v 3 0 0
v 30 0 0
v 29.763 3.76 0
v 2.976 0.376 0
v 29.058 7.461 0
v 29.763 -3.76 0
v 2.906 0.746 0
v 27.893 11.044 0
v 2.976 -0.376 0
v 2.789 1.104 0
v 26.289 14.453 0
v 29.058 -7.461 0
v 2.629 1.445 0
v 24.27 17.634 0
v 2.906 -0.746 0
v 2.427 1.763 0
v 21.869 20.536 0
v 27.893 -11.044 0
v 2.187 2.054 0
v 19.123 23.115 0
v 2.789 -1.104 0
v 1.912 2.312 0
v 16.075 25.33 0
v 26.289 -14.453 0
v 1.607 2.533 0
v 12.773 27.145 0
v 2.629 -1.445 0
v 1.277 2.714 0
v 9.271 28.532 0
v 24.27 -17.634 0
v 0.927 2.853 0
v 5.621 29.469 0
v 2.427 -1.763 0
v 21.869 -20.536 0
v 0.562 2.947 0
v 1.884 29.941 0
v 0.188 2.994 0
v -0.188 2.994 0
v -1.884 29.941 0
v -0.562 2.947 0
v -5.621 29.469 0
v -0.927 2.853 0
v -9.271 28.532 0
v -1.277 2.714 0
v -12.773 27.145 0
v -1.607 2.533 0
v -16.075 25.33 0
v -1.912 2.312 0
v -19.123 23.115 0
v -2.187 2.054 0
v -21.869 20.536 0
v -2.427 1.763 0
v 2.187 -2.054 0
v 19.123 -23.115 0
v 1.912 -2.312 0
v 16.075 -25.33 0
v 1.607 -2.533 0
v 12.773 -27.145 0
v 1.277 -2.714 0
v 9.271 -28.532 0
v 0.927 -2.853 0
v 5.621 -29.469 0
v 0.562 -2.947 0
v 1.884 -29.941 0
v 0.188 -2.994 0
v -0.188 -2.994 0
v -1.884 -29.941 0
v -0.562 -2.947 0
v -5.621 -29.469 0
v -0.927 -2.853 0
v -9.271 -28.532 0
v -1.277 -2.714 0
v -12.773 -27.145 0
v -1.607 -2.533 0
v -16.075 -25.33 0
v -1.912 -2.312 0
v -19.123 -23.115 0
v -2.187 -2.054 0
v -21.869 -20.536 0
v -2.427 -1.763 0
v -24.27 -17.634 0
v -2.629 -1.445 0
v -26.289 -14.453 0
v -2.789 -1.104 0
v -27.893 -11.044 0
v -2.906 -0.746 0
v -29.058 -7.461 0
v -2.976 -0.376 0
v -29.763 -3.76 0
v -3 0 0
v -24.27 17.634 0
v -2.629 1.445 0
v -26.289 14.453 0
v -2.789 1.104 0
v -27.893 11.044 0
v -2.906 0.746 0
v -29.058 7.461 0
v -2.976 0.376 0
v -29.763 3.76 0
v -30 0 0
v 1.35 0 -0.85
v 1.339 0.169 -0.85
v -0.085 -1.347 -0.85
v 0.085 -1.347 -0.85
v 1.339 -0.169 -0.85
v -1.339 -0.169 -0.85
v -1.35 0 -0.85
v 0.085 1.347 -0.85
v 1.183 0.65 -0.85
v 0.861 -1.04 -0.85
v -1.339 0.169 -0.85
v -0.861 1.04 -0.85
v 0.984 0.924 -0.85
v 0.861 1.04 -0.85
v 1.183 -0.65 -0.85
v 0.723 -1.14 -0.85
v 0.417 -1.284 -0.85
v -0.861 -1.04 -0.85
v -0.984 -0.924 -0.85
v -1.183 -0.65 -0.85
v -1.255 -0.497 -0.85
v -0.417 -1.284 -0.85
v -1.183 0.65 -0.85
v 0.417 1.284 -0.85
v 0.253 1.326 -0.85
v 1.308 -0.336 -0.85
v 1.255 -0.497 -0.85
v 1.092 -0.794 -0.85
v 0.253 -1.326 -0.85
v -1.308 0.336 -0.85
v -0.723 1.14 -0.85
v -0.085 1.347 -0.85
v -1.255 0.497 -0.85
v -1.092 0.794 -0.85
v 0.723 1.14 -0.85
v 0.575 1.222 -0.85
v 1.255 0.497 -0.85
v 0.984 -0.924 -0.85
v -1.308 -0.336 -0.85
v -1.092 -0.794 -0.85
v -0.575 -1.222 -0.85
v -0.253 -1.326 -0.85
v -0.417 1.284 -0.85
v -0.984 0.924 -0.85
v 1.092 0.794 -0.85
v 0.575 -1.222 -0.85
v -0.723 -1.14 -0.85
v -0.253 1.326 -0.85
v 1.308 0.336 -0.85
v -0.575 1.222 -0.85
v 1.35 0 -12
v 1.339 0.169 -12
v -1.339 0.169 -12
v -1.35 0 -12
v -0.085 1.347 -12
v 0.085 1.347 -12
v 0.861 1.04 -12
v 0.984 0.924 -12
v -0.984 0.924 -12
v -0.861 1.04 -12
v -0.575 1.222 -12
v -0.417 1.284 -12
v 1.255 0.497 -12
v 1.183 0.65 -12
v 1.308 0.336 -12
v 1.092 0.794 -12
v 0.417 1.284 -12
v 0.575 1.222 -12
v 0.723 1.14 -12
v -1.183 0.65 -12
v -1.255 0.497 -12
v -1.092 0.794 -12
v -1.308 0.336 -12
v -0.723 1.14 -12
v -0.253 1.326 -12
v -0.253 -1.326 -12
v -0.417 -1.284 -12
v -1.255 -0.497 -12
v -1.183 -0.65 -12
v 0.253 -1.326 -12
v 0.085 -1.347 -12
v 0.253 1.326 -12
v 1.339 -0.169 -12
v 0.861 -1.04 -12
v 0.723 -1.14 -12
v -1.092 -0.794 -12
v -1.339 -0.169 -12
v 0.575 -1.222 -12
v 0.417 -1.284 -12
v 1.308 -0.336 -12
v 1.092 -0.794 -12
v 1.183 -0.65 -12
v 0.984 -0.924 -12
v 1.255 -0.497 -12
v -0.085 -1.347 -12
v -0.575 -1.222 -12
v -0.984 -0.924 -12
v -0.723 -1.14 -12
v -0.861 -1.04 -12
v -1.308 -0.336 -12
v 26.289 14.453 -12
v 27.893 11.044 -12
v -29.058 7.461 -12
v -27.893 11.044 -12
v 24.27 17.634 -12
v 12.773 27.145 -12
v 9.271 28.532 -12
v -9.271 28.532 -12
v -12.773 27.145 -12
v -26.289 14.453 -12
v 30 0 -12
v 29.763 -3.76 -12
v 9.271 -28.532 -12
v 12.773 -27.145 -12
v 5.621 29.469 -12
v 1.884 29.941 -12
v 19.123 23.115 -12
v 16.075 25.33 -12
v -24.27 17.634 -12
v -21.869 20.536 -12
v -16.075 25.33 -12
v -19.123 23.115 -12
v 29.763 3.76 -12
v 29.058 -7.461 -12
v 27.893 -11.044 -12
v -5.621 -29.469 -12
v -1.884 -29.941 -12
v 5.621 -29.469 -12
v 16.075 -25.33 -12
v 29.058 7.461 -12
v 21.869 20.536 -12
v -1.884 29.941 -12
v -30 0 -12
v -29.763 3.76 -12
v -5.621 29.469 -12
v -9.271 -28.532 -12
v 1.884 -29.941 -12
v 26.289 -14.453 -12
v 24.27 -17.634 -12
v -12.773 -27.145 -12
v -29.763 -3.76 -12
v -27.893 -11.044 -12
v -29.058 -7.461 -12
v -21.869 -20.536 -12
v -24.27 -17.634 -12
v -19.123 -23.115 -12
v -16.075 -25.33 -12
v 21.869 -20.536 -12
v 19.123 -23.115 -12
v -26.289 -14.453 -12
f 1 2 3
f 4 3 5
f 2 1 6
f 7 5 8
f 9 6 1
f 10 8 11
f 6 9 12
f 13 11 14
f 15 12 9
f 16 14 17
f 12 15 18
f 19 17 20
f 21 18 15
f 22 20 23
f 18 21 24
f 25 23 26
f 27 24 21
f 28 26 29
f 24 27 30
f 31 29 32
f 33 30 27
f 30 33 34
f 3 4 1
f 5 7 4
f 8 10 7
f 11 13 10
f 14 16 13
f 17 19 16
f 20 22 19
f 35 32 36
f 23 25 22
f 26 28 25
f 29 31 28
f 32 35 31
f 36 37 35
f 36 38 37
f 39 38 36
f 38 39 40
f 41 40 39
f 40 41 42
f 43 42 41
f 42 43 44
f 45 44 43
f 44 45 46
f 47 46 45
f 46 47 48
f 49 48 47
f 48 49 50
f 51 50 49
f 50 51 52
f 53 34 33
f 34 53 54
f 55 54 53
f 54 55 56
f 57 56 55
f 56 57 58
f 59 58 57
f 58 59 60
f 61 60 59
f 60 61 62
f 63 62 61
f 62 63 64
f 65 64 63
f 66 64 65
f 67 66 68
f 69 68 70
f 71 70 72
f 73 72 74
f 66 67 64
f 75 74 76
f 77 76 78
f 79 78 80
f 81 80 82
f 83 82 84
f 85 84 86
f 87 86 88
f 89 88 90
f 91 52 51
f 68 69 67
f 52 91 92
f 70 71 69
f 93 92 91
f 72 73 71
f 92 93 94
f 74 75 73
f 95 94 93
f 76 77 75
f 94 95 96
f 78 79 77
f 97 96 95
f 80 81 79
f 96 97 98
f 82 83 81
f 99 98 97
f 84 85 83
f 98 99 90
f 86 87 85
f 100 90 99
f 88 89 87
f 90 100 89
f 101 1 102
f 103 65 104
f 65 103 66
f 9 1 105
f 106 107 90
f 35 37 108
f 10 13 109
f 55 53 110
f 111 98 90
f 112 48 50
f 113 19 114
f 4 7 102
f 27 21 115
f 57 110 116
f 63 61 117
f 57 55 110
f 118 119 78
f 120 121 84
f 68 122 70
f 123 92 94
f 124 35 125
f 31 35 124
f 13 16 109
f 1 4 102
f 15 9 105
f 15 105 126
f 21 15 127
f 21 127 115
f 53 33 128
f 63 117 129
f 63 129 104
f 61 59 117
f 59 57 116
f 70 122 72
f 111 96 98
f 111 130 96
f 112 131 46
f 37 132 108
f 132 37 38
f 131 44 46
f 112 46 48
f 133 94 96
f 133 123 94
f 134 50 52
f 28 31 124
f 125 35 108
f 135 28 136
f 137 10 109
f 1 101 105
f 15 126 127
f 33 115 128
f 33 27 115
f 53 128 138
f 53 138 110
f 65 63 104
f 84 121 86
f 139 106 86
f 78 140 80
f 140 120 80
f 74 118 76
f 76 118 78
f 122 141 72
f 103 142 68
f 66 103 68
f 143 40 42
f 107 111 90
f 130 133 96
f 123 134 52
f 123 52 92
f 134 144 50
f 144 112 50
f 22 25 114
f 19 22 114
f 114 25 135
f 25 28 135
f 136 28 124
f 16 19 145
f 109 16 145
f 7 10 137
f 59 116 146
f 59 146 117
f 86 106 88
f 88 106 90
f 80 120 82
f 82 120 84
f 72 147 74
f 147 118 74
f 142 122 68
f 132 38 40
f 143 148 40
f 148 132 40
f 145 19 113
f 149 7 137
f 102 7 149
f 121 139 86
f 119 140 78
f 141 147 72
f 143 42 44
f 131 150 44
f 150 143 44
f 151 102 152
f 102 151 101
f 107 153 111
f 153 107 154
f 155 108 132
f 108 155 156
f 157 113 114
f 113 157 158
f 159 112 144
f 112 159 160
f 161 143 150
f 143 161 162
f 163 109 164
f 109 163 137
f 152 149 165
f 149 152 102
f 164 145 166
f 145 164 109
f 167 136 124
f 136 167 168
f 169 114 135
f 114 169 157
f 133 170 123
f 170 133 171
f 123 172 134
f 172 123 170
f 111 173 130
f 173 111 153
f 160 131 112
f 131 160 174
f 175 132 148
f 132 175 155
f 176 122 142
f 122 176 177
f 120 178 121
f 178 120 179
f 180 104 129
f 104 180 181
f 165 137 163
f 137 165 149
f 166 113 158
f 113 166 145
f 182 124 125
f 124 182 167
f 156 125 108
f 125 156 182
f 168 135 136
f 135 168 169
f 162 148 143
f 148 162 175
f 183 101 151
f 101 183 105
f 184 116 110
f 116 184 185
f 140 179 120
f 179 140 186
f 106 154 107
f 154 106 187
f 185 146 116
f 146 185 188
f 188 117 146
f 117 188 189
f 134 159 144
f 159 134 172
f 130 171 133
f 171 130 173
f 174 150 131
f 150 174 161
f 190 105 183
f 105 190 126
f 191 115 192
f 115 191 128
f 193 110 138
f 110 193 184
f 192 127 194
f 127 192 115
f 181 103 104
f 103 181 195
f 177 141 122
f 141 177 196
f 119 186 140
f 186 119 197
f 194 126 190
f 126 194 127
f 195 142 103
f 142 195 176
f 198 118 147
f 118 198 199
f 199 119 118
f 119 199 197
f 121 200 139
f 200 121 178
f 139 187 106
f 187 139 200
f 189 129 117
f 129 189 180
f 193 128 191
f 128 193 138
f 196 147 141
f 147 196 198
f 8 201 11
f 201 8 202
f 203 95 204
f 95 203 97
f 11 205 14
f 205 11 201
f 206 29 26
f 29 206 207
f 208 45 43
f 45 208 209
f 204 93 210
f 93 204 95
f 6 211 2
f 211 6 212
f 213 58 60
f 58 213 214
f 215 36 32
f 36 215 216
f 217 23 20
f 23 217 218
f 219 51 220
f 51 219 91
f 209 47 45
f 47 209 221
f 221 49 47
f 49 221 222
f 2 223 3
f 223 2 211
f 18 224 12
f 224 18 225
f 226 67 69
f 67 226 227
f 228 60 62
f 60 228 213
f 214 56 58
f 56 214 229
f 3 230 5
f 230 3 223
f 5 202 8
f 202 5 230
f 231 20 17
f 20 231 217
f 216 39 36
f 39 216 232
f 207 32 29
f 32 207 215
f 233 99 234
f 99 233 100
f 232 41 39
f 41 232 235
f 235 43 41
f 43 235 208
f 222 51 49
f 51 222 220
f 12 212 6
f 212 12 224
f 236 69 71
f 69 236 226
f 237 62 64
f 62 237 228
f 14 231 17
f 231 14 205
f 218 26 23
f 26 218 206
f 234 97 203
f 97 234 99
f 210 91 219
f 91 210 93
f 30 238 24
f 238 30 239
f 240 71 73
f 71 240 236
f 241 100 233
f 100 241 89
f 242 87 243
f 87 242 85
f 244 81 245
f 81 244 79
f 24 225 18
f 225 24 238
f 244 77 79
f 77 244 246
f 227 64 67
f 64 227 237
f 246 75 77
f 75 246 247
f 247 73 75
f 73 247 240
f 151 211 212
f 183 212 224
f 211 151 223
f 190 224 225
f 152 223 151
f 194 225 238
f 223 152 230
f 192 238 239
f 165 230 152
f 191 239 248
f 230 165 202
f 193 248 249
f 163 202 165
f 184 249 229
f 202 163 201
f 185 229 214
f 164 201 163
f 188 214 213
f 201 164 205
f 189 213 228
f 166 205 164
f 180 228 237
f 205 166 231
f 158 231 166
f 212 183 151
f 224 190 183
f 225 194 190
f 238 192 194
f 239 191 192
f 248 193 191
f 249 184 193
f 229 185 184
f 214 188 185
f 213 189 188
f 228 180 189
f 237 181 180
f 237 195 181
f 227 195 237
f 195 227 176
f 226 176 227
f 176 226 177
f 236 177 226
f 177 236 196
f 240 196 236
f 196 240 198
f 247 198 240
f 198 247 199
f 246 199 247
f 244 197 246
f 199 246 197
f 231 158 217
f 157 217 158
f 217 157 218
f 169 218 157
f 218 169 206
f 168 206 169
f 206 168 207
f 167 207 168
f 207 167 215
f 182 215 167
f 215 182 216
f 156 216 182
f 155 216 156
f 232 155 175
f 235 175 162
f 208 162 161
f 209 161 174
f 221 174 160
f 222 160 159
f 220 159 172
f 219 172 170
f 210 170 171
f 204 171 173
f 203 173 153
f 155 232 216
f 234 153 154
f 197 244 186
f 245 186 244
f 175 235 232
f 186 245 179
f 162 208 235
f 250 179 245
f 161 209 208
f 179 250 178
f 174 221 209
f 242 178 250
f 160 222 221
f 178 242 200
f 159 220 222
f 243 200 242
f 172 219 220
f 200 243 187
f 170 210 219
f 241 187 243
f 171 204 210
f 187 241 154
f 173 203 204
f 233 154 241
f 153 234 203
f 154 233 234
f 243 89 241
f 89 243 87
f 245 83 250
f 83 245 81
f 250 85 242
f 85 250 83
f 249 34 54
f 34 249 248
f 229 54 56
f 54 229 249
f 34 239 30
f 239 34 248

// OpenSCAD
$fn = 50;


difference() {
	union() {
		translate(v = [0, 0, -12.0000000000]) {
			cylinder(h = 12, r = 30.0000000000);
		}
	}
	union() {
		translate(v = [0, 0, 0]) {
			rotate(a = [0, 0, 0]) {
				difference() {
					union() {
						translate(v = [0, 0, -15.0000000000]) {
							cylinder(h = 15, r = 1.0000000000);
						}
						translate(v = [0, 0, -0.8500000000]) {
							cylinder(h = 0.8500000000, r1 = 1.3500000000, r2 = 3.0000000000);
						}
						translate(v = [0, 0, -15.0000000000]) {
							cylinder(h = 15, r = 1.3500000000);
						}
						translate(v = [0, 0, -15.0000000000]) {
							cylinder(h = 15, r = 1.0000000000);
						}
					}
					union();
				}
			}
		}
	}
}
